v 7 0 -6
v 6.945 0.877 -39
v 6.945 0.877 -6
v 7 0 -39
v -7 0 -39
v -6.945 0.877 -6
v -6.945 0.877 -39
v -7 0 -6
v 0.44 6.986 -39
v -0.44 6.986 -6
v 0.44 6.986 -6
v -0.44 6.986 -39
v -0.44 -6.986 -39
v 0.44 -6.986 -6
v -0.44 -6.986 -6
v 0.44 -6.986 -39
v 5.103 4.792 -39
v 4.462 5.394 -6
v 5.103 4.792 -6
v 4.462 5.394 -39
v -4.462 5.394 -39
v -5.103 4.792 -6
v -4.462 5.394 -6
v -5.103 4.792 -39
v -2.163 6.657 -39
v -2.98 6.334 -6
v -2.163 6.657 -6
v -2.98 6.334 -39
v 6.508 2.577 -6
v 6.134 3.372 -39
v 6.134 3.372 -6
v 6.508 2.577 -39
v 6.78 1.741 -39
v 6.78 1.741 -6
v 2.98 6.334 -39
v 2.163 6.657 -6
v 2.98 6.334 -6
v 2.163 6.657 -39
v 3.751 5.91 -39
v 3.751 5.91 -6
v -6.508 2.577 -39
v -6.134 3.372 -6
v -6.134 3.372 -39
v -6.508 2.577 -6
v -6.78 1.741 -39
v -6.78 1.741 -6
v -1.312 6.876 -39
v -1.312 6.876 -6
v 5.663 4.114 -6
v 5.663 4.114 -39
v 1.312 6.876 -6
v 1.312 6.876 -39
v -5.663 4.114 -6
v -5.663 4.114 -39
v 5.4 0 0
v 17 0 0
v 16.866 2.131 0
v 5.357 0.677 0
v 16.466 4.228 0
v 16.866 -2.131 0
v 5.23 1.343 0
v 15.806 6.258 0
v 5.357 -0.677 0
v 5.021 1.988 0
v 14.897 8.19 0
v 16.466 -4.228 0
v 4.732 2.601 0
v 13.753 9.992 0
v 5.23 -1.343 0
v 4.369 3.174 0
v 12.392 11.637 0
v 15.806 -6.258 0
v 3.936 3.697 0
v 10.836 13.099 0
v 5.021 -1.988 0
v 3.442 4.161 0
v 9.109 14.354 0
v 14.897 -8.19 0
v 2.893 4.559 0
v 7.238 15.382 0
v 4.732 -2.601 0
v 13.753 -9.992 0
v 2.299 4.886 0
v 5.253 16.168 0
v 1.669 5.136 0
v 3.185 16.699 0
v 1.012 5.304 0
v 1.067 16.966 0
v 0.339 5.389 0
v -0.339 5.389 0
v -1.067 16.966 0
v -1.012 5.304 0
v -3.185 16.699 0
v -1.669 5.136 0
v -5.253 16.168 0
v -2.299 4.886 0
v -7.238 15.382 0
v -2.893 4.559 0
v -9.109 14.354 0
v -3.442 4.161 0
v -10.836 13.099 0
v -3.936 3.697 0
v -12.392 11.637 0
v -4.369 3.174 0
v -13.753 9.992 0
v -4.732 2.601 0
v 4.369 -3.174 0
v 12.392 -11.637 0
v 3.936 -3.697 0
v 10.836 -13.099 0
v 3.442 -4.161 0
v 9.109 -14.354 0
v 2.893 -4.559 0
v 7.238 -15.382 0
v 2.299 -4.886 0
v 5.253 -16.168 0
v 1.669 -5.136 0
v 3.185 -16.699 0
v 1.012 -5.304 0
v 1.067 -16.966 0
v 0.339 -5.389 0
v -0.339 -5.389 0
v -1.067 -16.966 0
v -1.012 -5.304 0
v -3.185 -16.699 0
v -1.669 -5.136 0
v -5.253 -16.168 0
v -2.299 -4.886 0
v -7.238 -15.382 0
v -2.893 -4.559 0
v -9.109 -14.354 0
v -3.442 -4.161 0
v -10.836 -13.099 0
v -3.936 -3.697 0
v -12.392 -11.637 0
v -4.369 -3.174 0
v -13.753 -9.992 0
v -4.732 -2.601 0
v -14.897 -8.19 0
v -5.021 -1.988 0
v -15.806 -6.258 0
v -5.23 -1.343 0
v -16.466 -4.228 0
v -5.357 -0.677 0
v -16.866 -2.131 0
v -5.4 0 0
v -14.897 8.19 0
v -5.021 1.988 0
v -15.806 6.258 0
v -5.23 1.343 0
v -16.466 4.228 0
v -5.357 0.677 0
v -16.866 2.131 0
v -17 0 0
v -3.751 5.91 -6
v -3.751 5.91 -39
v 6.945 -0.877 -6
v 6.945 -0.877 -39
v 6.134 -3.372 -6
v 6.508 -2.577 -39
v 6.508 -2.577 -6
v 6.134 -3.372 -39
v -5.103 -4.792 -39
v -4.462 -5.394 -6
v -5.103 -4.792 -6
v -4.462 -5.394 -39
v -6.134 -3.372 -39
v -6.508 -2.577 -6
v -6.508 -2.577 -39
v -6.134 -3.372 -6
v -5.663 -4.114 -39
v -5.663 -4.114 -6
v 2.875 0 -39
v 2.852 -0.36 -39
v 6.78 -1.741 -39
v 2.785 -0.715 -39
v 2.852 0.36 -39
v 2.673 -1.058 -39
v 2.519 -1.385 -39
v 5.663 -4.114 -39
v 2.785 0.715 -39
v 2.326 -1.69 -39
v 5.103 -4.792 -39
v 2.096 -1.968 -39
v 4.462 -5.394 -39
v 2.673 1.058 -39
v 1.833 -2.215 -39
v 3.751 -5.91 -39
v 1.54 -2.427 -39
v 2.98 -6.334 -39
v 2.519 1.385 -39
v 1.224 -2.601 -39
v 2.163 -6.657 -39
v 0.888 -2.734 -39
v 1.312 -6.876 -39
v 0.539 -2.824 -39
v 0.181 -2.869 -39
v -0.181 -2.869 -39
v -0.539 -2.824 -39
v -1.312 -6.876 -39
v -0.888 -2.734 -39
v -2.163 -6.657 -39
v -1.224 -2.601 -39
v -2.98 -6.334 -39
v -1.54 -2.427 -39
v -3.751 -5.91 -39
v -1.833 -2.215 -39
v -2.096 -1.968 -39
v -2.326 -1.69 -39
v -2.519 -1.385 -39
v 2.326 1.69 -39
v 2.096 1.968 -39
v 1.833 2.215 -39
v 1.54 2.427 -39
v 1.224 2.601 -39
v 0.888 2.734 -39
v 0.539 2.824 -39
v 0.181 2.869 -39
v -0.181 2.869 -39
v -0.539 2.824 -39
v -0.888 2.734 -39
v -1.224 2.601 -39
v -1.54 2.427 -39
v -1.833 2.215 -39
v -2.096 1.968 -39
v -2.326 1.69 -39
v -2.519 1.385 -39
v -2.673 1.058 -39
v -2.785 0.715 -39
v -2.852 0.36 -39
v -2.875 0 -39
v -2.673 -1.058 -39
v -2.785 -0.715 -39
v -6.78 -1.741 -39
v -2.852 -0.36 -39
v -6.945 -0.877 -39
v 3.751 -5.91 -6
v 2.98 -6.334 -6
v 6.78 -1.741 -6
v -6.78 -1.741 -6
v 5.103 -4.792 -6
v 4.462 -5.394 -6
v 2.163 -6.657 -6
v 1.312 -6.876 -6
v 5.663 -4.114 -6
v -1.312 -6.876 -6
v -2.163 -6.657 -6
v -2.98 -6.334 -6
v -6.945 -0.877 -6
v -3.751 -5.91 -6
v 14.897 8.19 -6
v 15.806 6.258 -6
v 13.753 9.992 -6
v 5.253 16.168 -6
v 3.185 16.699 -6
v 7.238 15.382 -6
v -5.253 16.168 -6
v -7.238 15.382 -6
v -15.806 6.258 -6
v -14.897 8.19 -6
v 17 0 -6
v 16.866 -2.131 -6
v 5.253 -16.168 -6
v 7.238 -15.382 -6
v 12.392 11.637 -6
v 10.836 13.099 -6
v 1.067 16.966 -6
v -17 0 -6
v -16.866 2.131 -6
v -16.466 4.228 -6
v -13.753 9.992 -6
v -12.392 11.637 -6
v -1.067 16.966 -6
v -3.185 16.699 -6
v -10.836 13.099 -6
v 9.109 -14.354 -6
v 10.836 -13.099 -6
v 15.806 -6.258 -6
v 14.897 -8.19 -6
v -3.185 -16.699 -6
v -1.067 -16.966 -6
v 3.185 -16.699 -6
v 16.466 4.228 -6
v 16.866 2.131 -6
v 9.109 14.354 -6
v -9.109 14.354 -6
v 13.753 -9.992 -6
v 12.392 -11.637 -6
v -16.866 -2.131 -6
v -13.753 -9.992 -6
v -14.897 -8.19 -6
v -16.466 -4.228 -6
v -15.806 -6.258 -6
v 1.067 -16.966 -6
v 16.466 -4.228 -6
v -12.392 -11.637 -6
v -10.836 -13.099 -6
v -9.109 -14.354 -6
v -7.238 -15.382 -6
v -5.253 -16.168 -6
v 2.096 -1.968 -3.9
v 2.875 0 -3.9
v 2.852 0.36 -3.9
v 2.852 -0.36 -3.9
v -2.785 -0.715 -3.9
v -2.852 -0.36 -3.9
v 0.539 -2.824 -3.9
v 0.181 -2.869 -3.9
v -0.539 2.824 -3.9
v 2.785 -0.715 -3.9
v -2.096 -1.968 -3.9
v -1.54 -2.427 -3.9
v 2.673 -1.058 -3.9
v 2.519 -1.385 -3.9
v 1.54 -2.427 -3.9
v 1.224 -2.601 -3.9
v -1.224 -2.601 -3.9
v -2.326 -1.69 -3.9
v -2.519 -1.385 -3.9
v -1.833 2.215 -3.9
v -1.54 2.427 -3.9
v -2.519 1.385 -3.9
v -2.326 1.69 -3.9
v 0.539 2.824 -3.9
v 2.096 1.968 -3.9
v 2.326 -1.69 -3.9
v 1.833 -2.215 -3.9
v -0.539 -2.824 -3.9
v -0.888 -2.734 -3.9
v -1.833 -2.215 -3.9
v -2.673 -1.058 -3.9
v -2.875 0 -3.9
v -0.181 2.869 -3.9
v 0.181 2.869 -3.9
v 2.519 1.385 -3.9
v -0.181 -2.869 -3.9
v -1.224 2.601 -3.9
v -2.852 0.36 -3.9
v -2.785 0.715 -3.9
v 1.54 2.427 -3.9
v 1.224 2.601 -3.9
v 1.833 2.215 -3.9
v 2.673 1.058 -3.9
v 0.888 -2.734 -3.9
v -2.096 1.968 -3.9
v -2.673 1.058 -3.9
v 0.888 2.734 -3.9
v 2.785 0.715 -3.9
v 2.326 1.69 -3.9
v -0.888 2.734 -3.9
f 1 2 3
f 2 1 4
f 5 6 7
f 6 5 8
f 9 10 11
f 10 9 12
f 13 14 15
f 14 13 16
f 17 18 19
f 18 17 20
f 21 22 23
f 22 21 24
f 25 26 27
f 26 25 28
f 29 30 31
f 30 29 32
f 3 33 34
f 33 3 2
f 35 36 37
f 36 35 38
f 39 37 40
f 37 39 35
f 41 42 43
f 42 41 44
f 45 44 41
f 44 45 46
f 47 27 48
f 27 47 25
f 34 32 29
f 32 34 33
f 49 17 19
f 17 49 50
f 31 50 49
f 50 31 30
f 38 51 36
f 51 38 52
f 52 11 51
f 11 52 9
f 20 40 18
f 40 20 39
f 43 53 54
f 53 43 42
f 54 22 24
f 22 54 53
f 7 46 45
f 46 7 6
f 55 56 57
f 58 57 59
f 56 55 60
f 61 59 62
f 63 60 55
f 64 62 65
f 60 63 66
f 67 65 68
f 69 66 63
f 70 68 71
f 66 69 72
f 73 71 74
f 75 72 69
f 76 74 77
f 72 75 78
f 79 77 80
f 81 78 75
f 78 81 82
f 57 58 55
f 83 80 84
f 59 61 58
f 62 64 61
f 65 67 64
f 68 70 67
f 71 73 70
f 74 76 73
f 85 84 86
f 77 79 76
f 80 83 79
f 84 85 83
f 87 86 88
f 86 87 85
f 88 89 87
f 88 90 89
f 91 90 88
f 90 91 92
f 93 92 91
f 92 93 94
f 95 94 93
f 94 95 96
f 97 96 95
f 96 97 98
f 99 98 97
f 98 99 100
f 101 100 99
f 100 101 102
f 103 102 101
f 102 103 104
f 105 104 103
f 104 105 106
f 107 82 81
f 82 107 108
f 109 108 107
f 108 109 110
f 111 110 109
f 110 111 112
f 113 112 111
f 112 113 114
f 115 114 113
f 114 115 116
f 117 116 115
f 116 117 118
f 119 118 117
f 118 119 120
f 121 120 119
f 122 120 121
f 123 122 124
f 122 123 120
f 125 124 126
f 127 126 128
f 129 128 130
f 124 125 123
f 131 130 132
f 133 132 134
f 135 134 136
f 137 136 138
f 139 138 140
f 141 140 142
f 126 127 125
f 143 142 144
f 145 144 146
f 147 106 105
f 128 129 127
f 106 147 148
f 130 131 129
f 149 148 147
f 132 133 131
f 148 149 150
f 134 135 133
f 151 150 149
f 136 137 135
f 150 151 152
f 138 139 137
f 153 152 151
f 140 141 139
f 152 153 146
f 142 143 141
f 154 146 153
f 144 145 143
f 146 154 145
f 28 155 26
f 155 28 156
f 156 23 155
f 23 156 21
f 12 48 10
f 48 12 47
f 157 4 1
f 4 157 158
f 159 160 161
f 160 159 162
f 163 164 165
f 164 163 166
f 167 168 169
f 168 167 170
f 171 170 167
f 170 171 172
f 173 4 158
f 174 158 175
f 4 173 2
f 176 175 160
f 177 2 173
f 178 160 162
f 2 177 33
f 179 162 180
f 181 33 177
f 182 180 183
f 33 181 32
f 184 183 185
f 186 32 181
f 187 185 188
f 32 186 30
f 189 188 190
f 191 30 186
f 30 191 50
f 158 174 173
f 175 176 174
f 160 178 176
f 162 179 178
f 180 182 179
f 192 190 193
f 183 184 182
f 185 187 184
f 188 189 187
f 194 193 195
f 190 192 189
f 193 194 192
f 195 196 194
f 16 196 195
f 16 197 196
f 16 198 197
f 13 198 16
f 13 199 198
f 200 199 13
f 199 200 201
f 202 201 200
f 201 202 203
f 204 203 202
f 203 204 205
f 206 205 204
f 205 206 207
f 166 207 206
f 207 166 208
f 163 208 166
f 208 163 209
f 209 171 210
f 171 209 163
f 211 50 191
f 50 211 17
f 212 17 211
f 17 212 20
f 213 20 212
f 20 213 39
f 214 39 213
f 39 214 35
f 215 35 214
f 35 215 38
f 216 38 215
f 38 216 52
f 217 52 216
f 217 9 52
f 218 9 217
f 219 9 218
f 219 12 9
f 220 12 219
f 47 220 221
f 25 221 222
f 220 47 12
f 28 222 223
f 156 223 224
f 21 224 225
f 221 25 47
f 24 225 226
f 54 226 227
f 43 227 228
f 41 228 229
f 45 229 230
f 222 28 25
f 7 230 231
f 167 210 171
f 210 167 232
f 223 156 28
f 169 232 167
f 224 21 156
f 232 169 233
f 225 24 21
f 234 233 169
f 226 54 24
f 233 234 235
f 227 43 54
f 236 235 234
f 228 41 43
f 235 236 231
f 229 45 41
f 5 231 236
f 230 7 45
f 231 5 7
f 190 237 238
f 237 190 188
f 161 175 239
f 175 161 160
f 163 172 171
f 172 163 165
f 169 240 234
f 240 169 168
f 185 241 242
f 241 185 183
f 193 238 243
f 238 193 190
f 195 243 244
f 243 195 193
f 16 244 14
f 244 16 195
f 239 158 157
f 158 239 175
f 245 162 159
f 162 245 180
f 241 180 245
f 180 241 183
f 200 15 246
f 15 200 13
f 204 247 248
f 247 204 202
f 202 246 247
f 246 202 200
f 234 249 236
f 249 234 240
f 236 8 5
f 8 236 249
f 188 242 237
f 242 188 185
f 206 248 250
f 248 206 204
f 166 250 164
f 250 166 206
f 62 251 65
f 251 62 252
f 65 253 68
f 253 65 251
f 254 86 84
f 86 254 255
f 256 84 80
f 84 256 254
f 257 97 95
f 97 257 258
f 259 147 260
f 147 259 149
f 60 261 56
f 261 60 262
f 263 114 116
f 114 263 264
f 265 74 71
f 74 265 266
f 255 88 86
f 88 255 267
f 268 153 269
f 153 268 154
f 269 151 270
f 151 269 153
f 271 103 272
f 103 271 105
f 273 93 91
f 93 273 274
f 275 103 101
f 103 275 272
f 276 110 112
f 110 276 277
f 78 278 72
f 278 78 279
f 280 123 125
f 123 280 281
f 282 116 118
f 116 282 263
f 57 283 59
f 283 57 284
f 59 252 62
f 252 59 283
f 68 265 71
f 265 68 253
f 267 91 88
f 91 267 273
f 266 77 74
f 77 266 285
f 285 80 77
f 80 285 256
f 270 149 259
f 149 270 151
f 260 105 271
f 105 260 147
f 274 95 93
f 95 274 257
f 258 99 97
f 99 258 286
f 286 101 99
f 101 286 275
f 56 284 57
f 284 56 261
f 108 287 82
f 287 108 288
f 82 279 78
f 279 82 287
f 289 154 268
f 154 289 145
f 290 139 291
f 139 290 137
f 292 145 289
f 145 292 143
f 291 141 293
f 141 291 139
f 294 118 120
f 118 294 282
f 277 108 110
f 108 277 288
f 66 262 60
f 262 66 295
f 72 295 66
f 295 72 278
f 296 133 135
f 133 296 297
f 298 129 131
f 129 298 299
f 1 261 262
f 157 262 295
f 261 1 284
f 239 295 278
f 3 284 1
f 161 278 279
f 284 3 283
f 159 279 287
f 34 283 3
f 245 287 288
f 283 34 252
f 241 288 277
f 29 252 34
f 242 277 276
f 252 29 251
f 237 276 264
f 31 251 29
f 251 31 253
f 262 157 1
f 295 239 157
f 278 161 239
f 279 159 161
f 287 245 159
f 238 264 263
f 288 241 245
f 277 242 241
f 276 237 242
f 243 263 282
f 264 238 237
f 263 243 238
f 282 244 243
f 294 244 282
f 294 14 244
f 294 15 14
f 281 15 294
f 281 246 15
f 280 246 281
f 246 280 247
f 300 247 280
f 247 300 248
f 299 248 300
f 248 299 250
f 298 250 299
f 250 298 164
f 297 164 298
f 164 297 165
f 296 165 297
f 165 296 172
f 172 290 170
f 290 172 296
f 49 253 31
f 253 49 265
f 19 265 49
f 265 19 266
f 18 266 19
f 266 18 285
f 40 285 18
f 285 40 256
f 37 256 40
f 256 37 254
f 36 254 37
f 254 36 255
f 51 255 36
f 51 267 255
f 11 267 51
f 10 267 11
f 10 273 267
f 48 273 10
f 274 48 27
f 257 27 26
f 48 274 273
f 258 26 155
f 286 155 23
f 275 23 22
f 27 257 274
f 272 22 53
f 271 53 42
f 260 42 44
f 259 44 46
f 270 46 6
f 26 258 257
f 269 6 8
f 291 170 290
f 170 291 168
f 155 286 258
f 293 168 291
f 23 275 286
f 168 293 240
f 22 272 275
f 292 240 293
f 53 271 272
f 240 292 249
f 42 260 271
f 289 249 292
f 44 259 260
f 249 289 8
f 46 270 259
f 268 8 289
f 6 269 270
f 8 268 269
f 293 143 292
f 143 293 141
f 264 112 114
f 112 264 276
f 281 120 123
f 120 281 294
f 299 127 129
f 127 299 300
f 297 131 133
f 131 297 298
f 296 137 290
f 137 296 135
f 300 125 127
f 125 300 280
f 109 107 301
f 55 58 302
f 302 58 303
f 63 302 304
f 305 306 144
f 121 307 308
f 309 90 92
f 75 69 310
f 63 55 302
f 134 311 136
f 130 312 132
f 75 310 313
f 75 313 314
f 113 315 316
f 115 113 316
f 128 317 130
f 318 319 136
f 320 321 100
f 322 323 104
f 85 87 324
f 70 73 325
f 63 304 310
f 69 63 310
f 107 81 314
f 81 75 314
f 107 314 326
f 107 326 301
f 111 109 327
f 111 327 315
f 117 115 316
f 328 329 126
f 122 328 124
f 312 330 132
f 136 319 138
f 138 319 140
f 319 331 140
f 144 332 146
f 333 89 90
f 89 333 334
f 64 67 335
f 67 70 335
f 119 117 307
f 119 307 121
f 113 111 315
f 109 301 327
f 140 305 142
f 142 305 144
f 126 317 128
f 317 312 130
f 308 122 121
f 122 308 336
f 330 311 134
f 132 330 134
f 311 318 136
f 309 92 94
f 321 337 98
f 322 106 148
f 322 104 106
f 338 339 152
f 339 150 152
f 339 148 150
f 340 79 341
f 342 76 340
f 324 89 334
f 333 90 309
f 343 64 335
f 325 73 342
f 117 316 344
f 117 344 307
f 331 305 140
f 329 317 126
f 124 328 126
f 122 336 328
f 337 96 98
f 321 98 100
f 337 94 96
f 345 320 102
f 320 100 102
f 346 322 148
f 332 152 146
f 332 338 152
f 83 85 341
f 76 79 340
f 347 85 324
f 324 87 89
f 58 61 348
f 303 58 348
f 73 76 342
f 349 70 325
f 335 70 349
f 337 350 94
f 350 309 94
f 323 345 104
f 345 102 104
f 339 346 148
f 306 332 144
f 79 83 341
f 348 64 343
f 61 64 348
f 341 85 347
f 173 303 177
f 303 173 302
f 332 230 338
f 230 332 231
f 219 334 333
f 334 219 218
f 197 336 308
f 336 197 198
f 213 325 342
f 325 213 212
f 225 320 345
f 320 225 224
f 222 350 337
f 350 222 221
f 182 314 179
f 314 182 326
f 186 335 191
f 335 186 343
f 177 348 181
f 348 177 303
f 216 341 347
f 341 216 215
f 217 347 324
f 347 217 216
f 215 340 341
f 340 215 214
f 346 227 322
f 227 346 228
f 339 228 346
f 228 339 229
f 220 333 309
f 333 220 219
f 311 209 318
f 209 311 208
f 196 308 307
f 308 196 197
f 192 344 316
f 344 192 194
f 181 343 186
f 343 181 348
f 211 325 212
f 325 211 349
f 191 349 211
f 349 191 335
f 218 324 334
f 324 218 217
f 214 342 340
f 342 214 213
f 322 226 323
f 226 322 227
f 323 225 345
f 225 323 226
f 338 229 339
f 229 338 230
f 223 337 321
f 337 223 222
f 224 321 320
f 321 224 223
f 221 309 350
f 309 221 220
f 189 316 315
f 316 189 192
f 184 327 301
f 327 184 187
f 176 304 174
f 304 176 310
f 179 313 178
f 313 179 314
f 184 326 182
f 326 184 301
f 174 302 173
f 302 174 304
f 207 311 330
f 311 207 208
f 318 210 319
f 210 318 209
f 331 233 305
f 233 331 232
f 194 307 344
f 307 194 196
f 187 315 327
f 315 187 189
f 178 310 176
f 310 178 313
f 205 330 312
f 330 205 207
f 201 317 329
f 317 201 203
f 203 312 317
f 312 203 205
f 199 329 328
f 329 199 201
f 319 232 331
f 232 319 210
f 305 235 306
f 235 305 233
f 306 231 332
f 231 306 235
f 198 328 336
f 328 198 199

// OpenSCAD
$fn = 50;


difference() {
	union() {
		translate(v = [0, 0, -39.0000000000]) {
			cylinder(h = 39, r = 7.0000000000);
		}
		translate(v = [0, 0, -6.0000000000]) {
			cylinder(h = 6, r = 17.0000000000);
		}
	}
	union() {
		translate(v = [0, 0, 0]) {
			rotate(a = [0, 0, 0]) {
				difference() {
					union() {
						#translate(v = [0, 0, -39.0000000000]) {
							cylinder(h = 39, r = 2.6000000000);
						}
						#translate(v = [0, 0, -3.9000000000]) {
							cylinder(h = 3.9000000000, r = 7.0000000000, r1 = 2.8750000000, r2 = 5.4000000000);
						}
						#translate(v = [0, 0, -39.0000000000]) {
							cylinder(h = 39, r = 2.8750000000);
						}
						#translate(v = [0, 0, -39.0000000000]) {
							cylinder(h = 39, r = 2.6000000000);
						}
					}
					union();
				}
			}
		}
	}
}
